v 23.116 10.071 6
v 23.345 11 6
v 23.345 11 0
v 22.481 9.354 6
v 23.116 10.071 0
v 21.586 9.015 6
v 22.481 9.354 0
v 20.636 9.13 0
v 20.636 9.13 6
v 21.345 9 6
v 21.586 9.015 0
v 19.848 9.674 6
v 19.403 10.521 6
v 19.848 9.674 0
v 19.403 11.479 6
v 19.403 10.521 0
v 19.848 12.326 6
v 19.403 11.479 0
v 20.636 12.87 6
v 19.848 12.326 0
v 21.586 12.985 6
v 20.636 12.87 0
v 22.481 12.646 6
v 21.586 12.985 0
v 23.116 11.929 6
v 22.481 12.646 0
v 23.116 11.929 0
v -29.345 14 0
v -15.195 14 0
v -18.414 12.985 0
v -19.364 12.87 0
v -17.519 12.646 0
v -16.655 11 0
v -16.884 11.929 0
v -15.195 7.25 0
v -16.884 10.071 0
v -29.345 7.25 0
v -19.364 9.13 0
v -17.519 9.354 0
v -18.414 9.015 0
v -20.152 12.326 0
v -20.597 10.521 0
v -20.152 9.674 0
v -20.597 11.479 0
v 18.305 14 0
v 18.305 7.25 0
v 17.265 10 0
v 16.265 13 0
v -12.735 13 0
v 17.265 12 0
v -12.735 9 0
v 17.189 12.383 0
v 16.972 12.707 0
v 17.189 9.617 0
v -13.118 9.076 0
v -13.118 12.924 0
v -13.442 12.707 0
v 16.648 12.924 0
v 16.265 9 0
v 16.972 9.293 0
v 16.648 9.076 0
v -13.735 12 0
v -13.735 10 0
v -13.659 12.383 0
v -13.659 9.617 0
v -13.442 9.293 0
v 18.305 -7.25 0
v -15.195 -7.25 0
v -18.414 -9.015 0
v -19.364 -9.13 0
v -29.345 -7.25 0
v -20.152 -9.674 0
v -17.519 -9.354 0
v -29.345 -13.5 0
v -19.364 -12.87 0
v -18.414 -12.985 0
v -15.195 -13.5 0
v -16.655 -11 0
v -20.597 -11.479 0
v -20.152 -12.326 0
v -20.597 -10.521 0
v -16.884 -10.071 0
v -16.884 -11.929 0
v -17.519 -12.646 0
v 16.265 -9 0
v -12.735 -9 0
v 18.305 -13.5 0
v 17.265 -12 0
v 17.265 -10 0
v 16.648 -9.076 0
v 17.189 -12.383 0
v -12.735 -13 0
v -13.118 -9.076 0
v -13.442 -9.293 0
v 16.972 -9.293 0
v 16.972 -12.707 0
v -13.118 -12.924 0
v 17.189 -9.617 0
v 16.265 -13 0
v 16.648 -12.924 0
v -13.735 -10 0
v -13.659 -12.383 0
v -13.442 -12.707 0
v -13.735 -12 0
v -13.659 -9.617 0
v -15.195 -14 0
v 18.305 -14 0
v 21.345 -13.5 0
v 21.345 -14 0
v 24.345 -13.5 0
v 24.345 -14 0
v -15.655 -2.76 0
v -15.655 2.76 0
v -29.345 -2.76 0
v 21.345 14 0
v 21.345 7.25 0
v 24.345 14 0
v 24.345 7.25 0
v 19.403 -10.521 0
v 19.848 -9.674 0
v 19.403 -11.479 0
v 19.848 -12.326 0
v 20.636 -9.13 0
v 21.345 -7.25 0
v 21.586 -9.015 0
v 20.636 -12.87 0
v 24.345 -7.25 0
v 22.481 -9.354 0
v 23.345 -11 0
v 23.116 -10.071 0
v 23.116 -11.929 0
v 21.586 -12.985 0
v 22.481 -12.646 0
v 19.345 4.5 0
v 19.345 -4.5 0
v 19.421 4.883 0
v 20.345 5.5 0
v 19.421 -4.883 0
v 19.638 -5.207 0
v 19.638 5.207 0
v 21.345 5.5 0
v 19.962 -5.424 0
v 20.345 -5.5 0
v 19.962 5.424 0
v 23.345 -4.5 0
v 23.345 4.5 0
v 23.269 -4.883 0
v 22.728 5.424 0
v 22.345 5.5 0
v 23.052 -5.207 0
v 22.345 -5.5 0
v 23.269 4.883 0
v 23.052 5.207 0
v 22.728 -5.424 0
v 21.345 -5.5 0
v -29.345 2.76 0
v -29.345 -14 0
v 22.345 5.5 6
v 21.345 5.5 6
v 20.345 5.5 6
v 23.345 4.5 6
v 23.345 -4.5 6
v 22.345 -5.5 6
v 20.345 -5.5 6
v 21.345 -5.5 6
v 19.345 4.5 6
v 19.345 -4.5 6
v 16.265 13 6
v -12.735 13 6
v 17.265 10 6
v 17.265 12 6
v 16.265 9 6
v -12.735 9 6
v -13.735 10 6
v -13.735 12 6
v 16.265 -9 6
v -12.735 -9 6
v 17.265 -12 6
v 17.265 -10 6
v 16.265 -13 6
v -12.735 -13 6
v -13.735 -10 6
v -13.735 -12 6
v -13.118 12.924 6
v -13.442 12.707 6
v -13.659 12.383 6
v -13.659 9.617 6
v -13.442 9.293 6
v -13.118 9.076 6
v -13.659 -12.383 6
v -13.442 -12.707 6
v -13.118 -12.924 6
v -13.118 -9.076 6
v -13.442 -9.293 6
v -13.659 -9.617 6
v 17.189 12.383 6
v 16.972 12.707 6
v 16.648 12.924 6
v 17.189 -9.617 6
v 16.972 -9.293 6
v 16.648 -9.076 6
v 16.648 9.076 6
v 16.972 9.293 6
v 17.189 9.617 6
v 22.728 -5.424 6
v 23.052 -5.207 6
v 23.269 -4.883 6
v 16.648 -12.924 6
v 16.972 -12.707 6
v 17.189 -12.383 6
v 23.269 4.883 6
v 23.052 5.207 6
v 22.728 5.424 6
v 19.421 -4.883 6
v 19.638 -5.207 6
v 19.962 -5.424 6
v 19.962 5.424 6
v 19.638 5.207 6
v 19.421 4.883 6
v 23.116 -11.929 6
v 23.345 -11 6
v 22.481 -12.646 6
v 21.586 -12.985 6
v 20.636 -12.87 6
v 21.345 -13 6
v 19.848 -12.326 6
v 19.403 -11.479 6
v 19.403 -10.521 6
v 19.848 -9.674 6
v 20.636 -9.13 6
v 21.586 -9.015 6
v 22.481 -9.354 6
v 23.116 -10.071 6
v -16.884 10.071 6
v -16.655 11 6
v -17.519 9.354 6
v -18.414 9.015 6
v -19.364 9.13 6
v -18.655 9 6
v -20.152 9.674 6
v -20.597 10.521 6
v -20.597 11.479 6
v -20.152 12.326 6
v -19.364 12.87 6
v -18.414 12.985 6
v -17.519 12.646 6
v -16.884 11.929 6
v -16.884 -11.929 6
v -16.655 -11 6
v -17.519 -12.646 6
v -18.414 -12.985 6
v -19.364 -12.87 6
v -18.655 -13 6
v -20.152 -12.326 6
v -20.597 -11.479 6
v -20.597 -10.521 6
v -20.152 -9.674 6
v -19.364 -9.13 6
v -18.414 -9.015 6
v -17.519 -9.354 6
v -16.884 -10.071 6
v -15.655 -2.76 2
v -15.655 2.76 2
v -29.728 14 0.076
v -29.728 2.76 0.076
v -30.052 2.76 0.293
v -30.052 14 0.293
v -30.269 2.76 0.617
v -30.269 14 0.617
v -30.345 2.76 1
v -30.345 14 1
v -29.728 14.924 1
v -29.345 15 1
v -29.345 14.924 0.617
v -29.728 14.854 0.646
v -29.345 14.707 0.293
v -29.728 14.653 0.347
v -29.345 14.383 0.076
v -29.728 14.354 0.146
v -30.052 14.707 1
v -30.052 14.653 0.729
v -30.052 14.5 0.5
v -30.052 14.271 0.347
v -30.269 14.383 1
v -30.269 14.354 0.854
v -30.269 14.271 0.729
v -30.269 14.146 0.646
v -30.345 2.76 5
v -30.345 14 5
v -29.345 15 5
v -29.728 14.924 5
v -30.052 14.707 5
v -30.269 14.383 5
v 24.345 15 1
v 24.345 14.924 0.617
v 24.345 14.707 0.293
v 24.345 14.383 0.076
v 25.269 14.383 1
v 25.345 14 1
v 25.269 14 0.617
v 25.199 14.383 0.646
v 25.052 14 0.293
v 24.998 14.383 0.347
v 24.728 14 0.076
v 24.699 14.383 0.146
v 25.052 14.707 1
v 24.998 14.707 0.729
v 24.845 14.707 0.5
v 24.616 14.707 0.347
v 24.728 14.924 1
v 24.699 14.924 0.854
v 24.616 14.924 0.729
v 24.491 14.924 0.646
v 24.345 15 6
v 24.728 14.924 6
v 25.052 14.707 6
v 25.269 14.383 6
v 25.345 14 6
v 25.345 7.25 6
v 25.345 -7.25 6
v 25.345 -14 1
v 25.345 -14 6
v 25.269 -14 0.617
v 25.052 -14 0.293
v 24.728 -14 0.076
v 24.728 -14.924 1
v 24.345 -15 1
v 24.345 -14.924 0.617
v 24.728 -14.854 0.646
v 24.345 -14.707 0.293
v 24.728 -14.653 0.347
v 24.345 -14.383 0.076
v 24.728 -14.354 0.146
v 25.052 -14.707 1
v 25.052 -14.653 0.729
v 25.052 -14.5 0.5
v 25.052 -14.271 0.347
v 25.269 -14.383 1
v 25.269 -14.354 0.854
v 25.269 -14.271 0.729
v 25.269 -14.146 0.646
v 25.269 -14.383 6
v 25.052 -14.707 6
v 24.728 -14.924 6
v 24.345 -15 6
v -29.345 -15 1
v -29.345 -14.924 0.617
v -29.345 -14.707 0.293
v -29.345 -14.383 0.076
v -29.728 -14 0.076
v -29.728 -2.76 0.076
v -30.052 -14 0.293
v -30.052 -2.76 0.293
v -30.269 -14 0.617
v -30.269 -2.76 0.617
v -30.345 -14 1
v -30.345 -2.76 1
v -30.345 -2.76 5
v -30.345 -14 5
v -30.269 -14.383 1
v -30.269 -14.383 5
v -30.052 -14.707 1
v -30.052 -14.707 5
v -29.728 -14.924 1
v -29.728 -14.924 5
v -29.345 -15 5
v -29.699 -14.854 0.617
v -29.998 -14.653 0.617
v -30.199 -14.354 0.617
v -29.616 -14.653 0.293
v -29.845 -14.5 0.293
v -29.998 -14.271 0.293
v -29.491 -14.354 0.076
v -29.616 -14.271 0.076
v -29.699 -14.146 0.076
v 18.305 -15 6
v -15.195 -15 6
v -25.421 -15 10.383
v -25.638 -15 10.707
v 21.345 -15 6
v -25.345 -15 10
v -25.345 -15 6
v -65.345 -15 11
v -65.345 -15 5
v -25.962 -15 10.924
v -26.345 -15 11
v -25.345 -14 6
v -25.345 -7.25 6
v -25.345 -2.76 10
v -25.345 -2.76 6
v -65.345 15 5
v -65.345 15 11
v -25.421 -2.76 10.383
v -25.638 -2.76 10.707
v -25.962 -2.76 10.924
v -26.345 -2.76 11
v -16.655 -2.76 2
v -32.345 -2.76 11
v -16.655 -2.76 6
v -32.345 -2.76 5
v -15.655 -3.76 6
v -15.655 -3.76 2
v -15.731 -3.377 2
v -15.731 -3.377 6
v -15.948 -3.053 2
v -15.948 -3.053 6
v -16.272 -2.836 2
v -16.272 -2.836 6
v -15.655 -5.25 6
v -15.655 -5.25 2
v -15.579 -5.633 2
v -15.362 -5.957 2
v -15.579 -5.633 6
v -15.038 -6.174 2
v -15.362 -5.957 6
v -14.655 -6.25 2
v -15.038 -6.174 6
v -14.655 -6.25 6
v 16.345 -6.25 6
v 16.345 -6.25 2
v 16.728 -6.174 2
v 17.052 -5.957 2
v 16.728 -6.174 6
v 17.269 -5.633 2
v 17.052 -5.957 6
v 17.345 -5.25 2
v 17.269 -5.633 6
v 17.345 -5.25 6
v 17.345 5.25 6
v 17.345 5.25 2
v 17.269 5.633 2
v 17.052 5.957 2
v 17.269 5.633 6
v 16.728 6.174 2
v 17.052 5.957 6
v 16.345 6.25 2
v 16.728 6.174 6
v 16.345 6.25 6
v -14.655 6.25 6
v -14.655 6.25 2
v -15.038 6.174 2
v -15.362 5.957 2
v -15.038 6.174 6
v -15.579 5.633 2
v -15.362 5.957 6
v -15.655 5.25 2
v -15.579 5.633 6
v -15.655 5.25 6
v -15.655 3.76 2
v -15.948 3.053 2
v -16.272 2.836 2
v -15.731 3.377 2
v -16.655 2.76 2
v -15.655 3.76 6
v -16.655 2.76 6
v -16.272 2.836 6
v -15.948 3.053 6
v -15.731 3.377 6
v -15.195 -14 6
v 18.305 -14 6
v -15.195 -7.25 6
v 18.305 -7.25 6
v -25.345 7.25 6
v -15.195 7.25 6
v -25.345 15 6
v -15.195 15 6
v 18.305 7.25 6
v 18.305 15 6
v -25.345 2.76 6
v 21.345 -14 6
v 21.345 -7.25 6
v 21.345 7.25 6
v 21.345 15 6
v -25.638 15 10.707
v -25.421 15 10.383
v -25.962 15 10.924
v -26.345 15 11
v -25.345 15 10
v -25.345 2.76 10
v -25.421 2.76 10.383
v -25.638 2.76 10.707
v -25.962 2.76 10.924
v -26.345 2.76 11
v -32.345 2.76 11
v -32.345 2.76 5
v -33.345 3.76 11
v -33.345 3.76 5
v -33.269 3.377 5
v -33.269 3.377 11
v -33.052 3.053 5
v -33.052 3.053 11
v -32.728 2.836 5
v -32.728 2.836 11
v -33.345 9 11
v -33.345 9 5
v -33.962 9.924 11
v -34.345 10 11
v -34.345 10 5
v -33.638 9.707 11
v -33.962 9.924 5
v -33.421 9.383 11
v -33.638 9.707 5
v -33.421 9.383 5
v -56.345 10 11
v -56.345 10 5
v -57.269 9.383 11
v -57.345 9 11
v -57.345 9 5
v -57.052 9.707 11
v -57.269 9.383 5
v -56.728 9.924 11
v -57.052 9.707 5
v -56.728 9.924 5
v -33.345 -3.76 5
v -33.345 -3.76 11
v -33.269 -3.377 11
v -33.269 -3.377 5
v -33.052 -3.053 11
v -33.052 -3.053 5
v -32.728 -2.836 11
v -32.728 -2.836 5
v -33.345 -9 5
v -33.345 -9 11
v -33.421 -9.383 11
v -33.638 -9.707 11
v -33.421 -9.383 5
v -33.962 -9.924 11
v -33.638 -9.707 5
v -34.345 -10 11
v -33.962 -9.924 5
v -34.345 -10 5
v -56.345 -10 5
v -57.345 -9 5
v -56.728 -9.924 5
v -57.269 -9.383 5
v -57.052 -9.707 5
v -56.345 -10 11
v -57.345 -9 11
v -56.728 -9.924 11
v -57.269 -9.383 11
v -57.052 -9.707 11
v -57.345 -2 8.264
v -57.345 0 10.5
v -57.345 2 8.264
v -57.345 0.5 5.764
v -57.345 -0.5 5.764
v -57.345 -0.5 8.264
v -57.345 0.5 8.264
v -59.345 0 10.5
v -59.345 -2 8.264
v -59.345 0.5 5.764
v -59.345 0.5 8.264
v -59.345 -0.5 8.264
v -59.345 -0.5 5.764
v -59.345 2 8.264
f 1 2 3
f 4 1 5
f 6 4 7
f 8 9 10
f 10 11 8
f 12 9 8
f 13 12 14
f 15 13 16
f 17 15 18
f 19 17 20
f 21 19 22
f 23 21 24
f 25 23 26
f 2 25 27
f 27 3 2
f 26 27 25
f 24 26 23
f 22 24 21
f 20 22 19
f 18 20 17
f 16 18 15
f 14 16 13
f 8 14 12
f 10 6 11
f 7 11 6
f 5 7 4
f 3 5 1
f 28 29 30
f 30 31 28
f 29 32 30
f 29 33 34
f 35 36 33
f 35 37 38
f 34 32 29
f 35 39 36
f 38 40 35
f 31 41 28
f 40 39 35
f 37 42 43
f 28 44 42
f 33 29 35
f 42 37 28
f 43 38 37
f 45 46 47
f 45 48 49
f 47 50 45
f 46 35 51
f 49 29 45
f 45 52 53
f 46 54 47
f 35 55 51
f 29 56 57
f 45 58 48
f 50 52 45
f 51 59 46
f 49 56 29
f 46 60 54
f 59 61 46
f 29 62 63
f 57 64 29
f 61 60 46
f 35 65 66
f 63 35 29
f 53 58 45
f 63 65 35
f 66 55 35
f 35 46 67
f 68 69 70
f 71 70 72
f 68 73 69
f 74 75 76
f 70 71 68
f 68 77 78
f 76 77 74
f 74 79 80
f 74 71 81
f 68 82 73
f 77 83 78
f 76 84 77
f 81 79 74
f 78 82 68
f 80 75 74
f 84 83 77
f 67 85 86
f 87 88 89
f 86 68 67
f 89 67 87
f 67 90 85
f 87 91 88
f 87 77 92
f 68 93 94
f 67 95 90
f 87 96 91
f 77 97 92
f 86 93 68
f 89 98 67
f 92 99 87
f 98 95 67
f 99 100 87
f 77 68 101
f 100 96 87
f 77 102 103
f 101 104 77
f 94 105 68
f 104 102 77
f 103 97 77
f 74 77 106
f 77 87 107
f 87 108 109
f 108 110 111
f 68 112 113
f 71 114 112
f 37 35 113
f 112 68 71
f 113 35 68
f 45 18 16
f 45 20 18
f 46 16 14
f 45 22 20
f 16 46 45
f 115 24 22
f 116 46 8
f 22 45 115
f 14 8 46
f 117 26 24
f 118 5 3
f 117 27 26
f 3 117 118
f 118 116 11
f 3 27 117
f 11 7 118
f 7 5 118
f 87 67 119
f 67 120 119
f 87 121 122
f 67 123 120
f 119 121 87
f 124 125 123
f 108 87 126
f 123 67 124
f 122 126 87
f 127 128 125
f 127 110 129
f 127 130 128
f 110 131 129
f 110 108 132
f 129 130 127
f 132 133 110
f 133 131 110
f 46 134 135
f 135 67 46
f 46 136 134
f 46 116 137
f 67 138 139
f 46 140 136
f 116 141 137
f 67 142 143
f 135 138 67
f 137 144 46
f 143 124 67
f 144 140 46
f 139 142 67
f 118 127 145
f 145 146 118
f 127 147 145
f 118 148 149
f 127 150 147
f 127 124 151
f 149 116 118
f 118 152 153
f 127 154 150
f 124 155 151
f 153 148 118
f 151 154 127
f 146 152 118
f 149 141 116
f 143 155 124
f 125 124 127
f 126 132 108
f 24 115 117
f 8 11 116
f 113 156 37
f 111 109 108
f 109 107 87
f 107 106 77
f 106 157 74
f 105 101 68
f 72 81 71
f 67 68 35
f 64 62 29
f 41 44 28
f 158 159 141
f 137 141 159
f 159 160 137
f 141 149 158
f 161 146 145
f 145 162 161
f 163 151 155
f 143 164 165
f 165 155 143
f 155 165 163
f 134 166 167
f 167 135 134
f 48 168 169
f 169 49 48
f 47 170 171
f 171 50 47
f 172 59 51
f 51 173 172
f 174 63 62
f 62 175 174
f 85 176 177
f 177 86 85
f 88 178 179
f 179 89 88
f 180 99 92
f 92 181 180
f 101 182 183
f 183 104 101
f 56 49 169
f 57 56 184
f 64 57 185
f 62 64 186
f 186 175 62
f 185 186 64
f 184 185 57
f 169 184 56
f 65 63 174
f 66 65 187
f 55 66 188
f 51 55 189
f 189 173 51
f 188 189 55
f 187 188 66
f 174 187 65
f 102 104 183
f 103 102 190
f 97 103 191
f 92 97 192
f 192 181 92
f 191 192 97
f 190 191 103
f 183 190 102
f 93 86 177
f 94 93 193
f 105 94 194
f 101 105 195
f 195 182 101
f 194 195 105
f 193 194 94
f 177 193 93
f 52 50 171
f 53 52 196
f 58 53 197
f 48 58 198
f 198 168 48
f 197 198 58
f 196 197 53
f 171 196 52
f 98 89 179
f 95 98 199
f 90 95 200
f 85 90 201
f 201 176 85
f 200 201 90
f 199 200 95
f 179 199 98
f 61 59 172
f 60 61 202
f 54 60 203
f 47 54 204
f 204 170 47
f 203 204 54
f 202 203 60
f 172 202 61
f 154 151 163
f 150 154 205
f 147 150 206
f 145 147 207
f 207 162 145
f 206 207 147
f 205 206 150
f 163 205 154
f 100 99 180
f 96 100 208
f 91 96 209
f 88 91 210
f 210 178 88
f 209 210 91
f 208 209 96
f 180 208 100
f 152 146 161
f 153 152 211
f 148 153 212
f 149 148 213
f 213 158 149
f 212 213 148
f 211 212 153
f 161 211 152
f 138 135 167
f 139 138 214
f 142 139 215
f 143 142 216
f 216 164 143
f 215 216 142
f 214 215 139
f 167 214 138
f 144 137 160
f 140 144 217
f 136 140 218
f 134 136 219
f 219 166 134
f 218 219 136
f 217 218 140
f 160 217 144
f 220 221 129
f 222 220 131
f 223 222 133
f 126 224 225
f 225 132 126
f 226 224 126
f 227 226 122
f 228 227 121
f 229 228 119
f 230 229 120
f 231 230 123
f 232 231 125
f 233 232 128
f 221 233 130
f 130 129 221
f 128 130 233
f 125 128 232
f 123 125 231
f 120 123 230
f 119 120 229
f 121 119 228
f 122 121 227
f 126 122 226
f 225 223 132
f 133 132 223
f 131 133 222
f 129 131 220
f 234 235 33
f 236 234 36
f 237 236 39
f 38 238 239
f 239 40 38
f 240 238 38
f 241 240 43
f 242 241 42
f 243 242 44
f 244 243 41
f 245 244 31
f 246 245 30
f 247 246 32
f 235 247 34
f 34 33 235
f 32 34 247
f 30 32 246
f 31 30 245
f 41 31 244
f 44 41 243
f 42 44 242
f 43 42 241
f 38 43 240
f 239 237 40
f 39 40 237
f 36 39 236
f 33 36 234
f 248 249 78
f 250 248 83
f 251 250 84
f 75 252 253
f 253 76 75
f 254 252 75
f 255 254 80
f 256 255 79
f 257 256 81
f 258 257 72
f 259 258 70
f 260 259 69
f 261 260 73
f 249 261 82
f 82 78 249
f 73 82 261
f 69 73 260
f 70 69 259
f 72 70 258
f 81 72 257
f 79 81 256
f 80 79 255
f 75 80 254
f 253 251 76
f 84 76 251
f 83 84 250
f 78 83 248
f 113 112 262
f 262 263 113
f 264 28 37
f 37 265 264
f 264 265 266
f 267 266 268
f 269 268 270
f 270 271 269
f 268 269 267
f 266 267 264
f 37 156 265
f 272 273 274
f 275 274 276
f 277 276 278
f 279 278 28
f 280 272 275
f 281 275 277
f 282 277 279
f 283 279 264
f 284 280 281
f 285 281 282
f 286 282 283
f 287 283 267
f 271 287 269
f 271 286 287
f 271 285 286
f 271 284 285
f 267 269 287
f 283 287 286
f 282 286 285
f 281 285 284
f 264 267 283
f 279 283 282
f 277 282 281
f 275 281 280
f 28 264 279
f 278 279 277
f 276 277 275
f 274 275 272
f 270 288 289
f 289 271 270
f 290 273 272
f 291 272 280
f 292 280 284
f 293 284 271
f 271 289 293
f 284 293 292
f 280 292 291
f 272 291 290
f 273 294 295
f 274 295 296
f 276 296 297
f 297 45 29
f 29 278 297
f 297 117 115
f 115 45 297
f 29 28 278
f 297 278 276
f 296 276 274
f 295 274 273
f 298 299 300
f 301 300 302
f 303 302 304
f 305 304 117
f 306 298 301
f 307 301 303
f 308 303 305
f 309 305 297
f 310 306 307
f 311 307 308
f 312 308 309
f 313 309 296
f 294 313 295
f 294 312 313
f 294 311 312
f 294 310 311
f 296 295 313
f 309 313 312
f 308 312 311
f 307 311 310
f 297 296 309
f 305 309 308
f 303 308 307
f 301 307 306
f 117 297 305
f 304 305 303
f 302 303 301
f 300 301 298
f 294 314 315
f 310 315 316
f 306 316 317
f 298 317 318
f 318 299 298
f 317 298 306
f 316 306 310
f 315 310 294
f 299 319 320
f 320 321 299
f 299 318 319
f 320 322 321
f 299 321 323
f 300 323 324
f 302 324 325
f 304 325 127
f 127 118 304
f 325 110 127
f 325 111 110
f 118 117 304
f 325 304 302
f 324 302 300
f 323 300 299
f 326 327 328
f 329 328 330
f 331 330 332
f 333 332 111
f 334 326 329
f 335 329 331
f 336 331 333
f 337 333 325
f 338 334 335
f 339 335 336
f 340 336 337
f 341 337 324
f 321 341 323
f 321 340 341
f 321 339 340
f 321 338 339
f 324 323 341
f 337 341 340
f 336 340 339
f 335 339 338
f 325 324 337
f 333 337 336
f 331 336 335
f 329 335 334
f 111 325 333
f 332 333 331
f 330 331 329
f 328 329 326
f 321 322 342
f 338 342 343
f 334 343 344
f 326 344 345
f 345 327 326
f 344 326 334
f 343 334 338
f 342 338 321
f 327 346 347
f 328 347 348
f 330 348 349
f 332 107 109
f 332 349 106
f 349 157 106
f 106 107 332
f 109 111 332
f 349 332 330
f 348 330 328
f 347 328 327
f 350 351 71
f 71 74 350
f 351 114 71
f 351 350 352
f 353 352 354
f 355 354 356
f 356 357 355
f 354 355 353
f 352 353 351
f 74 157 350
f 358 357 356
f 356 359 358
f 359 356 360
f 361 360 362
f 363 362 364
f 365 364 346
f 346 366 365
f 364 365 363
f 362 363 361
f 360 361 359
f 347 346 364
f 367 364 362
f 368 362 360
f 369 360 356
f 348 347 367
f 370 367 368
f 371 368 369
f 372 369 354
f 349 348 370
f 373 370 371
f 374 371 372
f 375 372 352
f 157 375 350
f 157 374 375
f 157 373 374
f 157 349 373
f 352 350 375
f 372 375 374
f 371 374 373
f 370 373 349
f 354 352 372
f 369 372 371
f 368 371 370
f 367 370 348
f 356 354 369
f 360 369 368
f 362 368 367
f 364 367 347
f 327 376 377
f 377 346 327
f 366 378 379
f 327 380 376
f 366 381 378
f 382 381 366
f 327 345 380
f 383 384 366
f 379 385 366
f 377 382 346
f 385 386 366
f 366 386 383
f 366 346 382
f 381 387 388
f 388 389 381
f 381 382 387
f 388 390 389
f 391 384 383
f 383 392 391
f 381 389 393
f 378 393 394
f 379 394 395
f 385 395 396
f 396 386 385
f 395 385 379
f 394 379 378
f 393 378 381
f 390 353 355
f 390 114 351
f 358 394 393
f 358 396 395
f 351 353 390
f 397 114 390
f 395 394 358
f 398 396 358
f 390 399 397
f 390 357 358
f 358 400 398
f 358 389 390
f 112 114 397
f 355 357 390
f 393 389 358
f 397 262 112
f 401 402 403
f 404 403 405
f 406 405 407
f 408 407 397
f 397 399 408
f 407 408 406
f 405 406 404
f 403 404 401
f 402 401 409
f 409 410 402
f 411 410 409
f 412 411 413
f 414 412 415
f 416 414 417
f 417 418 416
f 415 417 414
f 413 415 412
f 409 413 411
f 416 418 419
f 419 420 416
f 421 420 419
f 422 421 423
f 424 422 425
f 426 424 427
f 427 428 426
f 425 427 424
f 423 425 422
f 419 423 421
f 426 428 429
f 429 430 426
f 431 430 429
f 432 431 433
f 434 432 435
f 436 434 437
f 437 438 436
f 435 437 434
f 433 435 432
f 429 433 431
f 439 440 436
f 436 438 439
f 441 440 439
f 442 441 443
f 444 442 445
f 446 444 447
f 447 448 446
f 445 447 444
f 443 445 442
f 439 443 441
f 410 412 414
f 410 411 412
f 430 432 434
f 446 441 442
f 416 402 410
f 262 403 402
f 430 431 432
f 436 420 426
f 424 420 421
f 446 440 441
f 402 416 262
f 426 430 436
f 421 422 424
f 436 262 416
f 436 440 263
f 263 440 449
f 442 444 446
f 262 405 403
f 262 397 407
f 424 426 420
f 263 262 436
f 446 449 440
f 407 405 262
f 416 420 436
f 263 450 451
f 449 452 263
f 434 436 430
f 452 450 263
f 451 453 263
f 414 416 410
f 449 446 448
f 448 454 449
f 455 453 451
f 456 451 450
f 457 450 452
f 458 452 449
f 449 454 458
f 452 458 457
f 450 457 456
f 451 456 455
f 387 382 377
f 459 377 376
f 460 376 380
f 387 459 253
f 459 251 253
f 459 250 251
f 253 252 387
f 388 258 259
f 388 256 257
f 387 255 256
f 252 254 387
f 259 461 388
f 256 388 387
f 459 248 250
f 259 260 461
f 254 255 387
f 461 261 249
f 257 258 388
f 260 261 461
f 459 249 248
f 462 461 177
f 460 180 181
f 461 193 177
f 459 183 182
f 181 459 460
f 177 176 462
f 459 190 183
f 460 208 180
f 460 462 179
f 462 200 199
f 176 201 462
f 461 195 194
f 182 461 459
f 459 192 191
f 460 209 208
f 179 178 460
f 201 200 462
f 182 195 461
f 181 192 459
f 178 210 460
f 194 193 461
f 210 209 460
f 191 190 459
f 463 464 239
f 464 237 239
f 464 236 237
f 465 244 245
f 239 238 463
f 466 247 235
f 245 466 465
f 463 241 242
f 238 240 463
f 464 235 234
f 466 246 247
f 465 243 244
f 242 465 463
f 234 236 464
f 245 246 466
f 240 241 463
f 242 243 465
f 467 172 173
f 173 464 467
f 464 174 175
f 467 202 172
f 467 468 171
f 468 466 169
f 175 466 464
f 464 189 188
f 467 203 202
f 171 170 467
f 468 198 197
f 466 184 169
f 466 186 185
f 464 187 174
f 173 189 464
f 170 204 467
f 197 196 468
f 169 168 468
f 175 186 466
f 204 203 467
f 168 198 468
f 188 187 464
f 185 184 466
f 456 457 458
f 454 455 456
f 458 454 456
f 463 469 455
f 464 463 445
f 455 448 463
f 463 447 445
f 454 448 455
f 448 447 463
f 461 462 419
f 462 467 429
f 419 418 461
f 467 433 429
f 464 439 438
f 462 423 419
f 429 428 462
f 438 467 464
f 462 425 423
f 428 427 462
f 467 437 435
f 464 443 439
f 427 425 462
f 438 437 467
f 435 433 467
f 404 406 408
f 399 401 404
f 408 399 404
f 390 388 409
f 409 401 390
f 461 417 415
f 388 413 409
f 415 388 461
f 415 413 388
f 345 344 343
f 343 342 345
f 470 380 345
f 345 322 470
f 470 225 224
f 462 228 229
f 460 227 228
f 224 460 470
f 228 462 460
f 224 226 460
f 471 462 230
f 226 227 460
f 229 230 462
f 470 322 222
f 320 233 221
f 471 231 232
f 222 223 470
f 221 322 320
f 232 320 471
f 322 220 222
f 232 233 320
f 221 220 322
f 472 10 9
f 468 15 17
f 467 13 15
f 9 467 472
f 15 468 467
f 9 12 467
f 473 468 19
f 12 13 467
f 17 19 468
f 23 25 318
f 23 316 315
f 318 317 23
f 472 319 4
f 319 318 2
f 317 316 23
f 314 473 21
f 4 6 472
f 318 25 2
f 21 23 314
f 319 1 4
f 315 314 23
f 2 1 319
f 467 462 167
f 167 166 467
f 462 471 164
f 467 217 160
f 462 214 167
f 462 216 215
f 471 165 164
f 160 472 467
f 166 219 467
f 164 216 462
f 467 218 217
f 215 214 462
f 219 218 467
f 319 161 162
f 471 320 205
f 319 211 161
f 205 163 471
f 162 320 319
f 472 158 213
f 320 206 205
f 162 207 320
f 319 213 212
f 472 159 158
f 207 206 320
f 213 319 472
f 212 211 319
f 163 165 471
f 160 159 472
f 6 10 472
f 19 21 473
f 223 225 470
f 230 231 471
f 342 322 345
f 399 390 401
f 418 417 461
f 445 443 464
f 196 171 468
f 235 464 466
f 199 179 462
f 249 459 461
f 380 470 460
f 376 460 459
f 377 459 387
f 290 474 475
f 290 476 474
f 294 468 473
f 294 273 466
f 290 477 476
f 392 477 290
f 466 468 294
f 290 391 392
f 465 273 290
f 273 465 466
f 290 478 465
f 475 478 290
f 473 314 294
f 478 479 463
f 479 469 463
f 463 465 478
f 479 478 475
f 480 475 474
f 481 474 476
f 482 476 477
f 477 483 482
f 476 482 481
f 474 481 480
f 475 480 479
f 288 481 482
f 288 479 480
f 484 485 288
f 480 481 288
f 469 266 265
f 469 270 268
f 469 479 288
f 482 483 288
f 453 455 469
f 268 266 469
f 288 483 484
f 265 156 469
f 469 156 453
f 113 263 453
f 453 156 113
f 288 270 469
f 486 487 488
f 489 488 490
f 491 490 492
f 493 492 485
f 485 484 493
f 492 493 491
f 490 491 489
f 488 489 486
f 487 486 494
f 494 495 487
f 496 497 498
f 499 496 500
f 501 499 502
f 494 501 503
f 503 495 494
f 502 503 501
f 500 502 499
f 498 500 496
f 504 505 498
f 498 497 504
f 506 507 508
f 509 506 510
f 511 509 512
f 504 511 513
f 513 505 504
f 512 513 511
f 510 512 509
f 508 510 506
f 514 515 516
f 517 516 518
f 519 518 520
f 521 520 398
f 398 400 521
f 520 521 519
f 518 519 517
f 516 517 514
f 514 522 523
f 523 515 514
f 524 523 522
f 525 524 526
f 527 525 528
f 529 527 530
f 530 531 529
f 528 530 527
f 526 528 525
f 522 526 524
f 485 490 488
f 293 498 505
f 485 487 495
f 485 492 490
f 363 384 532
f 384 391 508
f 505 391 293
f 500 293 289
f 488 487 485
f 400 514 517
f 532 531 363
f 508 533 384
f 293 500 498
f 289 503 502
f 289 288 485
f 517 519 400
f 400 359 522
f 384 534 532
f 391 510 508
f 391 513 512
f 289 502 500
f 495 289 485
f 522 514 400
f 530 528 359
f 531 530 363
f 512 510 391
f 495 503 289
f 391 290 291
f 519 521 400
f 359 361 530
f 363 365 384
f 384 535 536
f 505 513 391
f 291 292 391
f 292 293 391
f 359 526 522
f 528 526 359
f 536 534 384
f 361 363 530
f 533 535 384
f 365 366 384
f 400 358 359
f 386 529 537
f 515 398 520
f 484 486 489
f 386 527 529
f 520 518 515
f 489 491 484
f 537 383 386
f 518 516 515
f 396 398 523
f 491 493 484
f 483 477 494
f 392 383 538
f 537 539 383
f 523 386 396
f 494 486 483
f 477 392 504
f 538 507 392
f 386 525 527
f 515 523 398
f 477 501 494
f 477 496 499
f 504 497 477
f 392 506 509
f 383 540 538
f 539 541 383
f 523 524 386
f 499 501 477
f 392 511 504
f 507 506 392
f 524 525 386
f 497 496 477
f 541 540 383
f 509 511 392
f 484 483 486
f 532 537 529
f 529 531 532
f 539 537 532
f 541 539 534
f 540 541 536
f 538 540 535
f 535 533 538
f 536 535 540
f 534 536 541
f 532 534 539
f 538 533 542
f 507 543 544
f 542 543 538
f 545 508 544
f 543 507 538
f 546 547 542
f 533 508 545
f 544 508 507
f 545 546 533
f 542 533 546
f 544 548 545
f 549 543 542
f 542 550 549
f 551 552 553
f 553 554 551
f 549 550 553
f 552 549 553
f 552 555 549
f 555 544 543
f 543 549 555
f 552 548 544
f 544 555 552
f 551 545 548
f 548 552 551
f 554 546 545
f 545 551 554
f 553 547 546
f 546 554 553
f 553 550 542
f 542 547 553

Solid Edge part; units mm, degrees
sketch "Sketch1" plane through (0, 0, 0) normal (0, 0, 1) x (1, 0, 0)
  line L0 (-25.345, -15) -> (25.345, -15)
  line L1 (25.345, -15) -> (25.345, 15)
  line L2 (25.345, 15) -> (-25.345, 15)
  line L3 (-25.345, 15) -> (-25.345, -15)
  dimension "D1" = 50.69
  dimension "D2" = 30
extrude "Protrusion1" add sketch "Sketch1" along normal blind 6
sketch "Sketch2" plane through (0, 0, 6) normal (0, 0, 1) x (1, 0, 0)
  line L0 (-15.655, 6.25) -> (17.345, 6.25)
  line L1 (17.345, 6.25) -> (17.345, -6.25)
  line L2 (17.345, -6.25) -> (-15.655, -6.25)
  line L3 (-15.655, -6.25) -> (-15.655, 6.25)
  dimension "D1" = 33
  dimension "D2" = 12.5
  dimension "D3" = 8.75
  dimension "D4" = 8
extrude "Utskärning_för_batteriet" cut sketch "Sketch2" against normal blind 4
hole "Hole1" at (21.345, 11, 6) direction (0, 0, -1) diameter 4 end up to next
hole "Hole2" at (21.345, -11, 6) direction (0, 0, -1) diameter 4 end up to next
hole "Hole3" at (-18.655, 11, 6) direction (0, 0, -1) diameter 4 end up to next
hole "Hole4" at (-18.655, -11, 6) direction (0, 0, -1) diameter 4 end up to next
sketch "Sketch3" plane through (-0.5, -15, 3) normal (0, -1, 0) x (1, 0, 0)
  line L0 (-24.845, 3) -> (-24.845, 8)
  line L1 (-24.845, 8) -> (-64.845, 8)
  line L2 (-64.845, 8) -> (-64.845, 2)
  line L3 (-64.845, 2) -> (-29.845, 2)
  line L4 (-29.845, 2) -> (-29.845, -3)
  line L5 (-29.845, -3) -> (-24.845, -3)
  line L6 (-24.845, -3) -> (-24.845, 3)
  dimension "D1" = 40
  dimension "D2" = 6
  dimension "D3" = 35
  dimension "D4" = 5
extrude "Protrusion2" add sketch "Sketch3" against normal up to vertex (30 mm away)
sketch "Sketch4" plane through (0, 0, 6) normal (0, 0, 1) x (0, -1, 0)
  line L0 (-5.5, 23.345) -> (5.5, 23.345)
  line L1 (5.5, 23.345) -> (5.5, 19.345)
  line L2 (5.5, 19.345) -> (-5.5, 19.345)
  line L3 (-5.5, 19.345) -> (-5.5, 23.345)
  line L4 (-13, 17.265) -> (-9, 17.265)
  line L5 (-9, 17.265) -> (-9, -13.735)
  line L6 (-9, -13.735) -> (-13, -13.735)
  line L7 (-13, -13.735) -> (-13, 17.265)
  line L8 (9, 17.265) -> (13, 17.265)
  line L9 (13, 17.265) -> (13, -13.735)
  line L10 (13, -13.735) -> (9, -13.735)
  line L11 (9, -13.735) -> (9, 17.265)
  line L12 (-10, -57.345) -> (10, -57.345)
  line L13 (10, -57.345) -> (10, -33.345)
  line L14 (10, -33.345) -> (-10, -33.345)
  line L15 (-10, -33.345) -> (-10, -57.345)
  dimension "D1" = 4
  dimension "D2" = 31
  dimension "D3" = 4
  dimension "D4" = 31
  dimension "D5" = 2
  dimension "D6" = 11
  dimension "D7" = 4
  dimension "D8" = 2
  dimension "D9" = 5.5
  dimension "D10" = 8.08
  dimension "D11" = 2
  dimension "D12" = 8.08
  dimension "D13" = 5
  dimension "D14" = 5
  dimension "D15" = 8
  dimension "D16" = 24
extrude "Cutout1" cut sketch "Sketch4" along normal through all and the other way through all
sketch "Sketch5" plane through (0, 0, 6) normal (0, 0, 1) x (0, -1, 0)
  line L0 (-2.76, -15.655) -> (-2.76, -33.345)
  line L1 (-2.76, -33.345) -> (2.76, -33.345)
  line L2 (2.76, -33.345) -> (2.76, -15.655)
  line L3 (2.76, -15.655) -> (-2.76, -15.655)
  dimension "D1" = 12.24
  dimension "D2" = 12.24
extrude "Cutout2" cut sketch "Sketch5" along normal through all and the other way through all
fillet "Avrundningar_1" radius 1 35 edges at (25.345, 15, 3) (17.345, 6.25, 4) (25.345, -15, 3) (17.345, -6.25, 4) (25.345, 0, 0) (-15.655, -6.25, 4) (-15.655, 6.25, 4) (-2.5, -15, 0) (-30.345, 8.88, 0) (-30.345, -8.88, 0) (-30.345, -15, 2.5) (-30.345, 15, 2.5) (-2.5, 15, 0) (-15.655, 2.76, 4) (-15.655, -2.76, 4) (-33.345, 10, 8) (-33.345, -10, 8) (-57.345, 10, 8) (-57.345, -10, 8) (-33.345, 2.76, 8) (-33.345, -2.76, 8) (-13.735, 13, 3) (-13.735, 9, 3) (-13.735, -13, 3) (-13.735, -9, 3) (17.265, 13, 3) (17.265, -9, 3) (17.265, 9, 3) (23.345, -5.5, 3) (17.265, -13, 3) (23.345, 5.5, 3) (19.345, -5.5, 3) (19.345, 5.5, 3) (-25.345, 8.88, 11) (-25.345, -8.88, 11)
sketch "Sketch6" plane through (-57.345, 0, 6) normal (1, 0, 0) x (0, -1, 0)
  line L0 (0, -4.5004) -> (-2, -2.2644)
  line L1 (-2, -2.2644) -> (-0.5, -2.2644)
  line L2 (-0.5, -2.2644) -> (-0.5, 0.2356)
  line L3 (-0.5, 0.2356) -> (0.5, 0.2356)
  line L4 (0.5, 0.2356) -> (0.5, -2.2644)
  line L5 (0.5, -2.2644) -> (2, -2.2644)
  line L6 (2, -2.2644) -> (0, -4.5004)
  dimension "D1" = 2.5
  dimension "D2" = 3
  dimension "D3" = 1.5
  dimension "D4" = 1
  dimension "D5" = 0.4996
extrude "Utskärning_pil" cut sketch "Sketch6" against normal blind 2
